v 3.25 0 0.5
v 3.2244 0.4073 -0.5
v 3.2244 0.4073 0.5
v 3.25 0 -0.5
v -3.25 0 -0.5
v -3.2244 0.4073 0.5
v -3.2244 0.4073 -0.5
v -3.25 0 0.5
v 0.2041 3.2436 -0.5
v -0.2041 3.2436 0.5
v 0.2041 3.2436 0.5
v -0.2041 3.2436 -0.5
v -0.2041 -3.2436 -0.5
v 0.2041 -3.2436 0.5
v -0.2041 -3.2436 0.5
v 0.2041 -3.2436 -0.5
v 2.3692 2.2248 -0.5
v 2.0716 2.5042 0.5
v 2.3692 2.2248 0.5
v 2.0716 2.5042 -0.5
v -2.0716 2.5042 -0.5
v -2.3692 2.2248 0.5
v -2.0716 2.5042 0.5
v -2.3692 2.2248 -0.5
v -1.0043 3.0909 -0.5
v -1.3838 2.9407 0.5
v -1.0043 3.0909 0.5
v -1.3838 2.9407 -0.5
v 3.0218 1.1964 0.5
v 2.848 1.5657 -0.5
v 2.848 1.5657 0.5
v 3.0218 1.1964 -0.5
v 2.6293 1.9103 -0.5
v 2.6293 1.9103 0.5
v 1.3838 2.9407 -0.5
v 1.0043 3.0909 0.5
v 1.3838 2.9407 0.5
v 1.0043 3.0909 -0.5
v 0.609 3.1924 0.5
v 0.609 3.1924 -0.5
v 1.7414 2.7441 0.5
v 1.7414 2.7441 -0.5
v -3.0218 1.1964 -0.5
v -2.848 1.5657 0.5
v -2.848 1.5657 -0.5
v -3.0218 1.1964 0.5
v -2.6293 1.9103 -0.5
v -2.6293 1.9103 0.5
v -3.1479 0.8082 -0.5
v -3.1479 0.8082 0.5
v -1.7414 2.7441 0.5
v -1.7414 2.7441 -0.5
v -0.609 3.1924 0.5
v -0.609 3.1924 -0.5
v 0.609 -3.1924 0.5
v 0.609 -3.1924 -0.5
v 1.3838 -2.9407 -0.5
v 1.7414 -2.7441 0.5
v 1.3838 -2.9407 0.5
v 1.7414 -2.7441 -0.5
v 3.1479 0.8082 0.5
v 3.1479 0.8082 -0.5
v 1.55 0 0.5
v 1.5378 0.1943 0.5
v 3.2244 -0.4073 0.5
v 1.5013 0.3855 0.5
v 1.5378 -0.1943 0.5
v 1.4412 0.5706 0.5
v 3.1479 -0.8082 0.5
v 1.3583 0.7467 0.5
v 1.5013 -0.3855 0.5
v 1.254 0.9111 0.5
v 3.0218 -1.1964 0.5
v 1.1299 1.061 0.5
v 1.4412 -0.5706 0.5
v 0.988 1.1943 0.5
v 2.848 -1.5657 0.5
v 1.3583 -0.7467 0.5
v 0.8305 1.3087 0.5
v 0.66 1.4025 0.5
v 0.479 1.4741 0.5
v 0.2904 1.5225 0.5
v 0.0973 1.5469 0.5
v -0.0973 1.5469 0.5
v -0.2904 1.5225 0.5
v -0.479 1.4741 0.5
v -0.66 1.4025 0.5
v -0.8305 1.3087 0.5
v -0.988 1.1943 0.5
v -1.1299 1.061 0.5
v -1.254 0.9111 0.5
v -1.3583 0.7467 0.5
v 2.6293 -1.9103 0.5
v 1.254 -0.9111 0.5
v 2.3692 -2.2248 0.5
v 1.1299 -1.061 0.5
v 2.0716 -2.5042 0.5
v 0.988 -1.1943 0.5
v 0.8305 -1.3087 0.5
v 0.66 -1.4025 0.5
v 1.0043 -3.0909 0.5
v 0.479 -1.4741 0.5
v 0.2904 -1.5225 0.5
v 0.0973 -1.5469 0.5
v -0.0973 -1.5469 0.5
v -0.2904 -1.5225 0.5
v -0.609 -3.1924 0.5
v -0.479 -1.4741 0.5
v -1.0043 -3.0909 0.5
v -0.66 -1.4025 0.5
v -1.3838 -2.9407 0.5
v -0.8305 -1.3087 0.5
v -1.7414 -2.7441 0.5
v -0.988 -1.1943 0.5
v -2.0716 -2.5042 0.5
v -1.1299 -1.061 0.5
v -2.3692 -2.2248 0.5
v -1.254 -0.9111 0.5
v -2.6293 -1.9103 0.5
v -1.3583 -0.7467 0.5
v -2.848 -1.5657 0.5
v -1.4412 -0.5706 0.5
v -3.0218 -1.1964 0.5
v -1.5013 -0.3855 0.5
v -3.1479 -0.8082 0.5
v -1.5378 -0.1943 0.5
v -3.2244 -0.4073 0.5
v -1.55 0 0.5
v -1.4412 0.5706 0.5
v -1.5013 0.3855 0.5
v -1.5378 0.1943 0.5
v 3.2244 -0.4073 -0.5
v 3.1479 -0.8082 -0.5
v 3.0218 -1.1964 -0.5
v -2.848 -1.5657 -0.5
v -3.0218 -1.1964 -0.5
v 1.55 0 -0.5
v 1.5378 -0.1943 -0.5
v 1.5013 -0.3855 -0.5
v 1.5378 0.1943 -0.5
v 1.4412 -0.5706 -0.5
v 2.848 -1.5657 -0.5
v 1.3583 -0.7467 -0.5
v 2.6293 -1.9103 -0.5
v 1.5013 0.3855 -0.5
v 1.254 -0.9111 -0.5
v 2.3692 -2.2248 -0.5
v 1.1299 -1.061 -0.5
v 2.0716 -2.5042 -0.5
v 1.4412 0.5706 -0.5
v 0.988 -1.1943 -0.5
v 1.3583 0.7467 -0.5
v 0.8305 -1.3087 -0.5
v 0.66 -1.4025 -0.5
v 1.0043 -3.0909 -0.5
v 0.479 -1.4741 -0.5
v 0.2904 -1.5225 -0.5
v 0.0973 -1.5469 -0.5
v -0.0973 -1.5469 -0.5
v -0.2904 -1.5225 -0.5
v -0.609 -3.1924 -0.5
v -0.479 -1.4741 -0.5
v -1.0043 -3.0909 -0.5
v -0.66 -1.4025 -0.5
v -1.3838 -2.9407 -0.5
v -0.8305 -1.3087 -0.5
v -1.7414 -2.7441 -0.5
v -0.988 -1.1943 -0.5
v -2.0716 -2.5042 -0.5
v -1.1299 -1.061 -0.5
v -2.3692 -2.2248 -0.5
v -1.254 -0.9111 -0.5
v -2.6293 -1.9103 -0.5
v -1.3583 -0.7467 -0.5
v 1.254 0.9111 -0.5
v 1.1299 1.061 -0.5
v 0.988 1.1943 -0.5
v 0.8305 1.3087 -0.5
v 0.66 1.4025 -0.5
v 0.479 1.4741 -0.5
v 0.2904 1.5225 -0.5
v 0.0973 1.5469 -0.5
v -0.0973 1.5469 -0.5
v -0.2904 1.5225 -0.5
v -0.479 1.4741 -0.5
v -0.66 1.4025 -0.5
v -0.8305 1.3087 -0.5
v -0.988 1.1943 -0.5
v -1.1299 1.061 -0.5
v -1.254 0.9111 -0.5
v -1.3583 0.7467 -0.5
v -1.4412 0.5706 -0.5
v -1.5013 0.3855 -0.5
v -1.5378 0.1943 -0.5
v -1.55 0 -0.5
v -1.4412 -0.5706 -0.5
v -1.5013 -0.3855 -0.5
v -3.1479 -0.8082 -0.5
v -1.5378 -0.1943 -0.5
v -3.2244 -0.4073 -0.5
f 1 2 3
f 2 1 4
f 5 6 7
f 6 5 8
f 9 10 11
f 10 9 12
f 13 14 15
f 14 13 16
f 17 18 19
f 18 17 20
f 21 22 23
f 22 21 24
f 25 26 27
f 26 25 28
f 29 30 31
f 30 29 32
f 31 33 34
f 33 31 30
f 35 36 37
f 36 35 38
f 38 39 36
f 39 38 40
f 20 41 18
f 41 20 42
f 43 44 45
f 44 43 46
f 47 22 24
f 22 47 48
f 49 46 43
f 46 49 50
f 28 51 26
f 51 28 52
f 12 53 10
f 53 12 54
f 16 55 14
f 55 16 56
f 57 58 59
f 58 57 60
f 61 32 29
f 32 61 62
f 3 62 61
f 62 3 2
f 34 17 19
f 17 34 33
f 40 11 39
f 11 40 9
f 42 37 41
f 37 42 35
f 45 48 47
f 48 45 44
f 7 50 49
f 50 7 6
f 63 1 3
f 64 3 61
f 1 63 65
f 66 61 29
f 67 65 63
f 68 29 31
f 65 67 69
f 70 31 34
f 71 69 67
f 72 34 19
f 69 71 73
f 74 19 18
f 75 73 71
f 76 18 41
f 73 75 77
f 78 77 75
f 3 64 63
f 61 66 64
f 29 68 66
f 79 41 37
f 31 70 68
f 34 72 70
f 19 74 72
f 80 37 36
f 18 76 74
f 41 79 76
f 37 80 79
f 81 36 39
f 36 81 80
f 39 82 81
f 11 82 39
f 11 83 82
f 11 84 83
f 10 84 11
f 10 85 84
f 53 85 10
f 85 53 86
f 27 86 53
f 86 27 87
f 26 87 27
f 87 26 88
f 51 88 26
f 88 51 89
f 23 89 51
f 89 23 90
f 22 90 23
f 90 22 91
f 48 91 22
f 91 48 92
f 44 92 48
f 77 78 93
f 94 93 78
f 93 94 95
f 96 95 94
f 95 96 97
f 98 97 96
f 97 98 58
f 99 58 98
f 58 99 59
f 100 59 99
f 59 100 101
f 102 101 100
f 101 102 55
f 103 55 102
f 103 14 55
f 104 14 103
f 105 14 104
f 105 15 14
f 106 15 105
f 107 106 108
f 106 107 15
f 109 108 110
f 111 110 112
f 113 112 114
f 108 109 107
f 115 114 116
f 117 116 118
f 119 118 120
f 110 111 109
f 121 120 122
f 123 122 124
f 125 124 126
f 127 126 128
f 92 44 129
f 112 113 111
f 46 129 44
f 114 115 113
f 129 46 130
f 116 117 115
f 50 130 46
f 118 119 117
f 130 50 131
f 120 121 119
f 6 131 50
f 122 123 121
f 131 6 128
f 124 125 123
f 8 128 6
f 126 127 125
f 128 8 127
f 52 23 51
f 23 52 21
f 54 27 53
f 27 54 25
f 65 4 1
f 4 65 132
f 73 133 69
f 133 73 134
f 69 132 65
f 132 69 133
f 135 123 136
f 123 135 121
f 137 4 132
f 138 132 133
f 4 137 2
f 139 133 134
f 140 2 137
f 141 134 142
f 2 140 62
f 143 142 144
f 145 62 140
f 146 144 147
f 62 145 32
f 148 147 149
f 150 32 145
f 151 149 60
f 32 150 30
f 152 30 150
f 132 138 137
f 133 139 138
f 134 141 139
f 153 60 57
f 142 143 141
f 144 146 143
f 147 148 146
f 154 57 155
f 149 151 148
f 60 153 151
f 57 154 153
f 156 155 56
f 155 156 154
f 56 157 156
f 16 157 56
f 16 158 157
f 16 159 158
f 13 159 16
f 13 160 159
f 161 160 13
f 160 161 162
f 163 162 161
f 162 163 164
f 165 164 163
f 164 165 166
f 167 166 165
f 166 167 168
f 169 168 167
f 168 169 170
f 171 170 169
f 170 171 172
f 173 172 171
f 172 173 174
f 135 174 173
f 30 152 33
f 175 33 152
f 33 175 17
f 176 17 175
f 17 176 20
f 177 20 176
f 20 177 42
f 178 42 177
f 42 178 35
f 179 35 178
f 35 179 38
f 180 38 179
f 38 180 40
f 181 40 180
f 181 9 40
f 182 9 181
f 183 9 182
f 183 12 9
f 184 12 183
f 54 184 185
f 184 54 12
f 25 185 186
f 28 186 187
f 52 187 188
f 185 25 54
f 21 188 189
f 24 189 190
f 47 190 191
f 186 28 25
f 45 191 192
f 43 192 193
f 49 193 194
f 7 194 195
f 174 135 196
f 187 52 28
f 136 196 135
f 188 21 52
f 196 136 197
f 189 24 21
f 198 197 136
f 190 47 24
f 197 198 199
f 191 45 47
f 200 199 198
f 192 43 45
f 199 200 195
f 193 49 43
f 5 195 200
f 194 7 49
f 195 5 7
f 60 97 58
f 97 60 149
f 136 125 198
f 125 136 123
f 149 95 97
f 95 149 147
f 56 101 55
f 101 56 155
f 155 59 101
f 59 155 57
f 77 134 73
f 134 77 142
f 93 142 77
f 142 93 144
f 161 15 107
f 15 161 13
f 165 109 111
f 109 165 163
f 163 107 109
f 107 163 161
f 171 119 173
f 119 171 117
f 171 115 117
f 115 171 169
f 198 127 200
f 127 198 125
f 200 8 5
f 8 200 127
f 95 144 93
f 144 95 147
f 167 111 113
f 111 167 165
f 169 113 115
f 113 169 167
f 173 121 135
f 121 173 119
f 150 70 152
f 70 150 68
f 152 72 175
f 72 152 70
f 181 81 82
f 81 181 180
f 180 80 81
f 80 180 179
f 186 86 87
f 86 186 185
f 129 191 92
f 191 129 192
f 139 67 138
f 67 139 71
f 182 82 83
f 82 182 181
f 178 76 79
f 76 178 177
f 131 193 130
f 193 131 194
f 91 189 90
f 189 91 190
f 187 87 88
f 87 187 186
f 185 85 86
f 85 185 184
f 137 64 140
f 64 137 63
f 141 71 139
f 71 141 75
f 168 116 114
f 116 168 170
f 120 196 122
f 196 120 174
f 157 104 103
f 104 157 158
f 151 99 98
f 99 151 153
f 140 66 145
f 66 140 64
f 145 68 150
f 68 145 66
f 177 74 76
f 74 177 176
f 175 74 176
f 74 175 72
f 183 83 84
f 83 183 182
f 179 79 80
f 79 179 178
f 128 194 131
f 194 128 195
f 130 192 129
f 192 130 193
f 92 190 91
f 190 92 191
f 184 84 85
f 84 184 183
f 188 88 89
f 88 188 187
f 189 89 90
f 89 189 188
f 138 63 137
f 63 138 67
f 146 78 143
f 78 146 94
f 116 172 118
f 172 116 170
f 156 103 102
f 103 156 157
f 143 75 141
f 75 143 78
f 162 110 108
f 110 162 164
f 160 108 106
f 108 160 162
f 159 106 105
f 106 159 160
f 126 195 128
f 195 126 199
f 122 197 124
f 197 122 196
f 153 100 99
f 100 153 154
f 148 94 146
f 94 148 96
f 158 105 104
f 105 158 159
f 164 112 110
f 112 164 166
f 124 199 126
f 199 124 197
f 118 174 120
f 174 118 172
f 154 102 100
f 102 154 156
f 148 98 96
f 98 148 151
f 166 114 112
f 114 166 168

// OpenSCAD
$fn = 50;


difference() {
	union() {
		translate(v = [0, 0, -0.5000000000]) {
			cylinder(h = 1, r = 3.2500000000);
		}
	}
	union() {
		translate(v = [0, 0, -100.0000000000]) {
			cylinder(h = 200, r = 1.5500000000);
		}
	}
}
